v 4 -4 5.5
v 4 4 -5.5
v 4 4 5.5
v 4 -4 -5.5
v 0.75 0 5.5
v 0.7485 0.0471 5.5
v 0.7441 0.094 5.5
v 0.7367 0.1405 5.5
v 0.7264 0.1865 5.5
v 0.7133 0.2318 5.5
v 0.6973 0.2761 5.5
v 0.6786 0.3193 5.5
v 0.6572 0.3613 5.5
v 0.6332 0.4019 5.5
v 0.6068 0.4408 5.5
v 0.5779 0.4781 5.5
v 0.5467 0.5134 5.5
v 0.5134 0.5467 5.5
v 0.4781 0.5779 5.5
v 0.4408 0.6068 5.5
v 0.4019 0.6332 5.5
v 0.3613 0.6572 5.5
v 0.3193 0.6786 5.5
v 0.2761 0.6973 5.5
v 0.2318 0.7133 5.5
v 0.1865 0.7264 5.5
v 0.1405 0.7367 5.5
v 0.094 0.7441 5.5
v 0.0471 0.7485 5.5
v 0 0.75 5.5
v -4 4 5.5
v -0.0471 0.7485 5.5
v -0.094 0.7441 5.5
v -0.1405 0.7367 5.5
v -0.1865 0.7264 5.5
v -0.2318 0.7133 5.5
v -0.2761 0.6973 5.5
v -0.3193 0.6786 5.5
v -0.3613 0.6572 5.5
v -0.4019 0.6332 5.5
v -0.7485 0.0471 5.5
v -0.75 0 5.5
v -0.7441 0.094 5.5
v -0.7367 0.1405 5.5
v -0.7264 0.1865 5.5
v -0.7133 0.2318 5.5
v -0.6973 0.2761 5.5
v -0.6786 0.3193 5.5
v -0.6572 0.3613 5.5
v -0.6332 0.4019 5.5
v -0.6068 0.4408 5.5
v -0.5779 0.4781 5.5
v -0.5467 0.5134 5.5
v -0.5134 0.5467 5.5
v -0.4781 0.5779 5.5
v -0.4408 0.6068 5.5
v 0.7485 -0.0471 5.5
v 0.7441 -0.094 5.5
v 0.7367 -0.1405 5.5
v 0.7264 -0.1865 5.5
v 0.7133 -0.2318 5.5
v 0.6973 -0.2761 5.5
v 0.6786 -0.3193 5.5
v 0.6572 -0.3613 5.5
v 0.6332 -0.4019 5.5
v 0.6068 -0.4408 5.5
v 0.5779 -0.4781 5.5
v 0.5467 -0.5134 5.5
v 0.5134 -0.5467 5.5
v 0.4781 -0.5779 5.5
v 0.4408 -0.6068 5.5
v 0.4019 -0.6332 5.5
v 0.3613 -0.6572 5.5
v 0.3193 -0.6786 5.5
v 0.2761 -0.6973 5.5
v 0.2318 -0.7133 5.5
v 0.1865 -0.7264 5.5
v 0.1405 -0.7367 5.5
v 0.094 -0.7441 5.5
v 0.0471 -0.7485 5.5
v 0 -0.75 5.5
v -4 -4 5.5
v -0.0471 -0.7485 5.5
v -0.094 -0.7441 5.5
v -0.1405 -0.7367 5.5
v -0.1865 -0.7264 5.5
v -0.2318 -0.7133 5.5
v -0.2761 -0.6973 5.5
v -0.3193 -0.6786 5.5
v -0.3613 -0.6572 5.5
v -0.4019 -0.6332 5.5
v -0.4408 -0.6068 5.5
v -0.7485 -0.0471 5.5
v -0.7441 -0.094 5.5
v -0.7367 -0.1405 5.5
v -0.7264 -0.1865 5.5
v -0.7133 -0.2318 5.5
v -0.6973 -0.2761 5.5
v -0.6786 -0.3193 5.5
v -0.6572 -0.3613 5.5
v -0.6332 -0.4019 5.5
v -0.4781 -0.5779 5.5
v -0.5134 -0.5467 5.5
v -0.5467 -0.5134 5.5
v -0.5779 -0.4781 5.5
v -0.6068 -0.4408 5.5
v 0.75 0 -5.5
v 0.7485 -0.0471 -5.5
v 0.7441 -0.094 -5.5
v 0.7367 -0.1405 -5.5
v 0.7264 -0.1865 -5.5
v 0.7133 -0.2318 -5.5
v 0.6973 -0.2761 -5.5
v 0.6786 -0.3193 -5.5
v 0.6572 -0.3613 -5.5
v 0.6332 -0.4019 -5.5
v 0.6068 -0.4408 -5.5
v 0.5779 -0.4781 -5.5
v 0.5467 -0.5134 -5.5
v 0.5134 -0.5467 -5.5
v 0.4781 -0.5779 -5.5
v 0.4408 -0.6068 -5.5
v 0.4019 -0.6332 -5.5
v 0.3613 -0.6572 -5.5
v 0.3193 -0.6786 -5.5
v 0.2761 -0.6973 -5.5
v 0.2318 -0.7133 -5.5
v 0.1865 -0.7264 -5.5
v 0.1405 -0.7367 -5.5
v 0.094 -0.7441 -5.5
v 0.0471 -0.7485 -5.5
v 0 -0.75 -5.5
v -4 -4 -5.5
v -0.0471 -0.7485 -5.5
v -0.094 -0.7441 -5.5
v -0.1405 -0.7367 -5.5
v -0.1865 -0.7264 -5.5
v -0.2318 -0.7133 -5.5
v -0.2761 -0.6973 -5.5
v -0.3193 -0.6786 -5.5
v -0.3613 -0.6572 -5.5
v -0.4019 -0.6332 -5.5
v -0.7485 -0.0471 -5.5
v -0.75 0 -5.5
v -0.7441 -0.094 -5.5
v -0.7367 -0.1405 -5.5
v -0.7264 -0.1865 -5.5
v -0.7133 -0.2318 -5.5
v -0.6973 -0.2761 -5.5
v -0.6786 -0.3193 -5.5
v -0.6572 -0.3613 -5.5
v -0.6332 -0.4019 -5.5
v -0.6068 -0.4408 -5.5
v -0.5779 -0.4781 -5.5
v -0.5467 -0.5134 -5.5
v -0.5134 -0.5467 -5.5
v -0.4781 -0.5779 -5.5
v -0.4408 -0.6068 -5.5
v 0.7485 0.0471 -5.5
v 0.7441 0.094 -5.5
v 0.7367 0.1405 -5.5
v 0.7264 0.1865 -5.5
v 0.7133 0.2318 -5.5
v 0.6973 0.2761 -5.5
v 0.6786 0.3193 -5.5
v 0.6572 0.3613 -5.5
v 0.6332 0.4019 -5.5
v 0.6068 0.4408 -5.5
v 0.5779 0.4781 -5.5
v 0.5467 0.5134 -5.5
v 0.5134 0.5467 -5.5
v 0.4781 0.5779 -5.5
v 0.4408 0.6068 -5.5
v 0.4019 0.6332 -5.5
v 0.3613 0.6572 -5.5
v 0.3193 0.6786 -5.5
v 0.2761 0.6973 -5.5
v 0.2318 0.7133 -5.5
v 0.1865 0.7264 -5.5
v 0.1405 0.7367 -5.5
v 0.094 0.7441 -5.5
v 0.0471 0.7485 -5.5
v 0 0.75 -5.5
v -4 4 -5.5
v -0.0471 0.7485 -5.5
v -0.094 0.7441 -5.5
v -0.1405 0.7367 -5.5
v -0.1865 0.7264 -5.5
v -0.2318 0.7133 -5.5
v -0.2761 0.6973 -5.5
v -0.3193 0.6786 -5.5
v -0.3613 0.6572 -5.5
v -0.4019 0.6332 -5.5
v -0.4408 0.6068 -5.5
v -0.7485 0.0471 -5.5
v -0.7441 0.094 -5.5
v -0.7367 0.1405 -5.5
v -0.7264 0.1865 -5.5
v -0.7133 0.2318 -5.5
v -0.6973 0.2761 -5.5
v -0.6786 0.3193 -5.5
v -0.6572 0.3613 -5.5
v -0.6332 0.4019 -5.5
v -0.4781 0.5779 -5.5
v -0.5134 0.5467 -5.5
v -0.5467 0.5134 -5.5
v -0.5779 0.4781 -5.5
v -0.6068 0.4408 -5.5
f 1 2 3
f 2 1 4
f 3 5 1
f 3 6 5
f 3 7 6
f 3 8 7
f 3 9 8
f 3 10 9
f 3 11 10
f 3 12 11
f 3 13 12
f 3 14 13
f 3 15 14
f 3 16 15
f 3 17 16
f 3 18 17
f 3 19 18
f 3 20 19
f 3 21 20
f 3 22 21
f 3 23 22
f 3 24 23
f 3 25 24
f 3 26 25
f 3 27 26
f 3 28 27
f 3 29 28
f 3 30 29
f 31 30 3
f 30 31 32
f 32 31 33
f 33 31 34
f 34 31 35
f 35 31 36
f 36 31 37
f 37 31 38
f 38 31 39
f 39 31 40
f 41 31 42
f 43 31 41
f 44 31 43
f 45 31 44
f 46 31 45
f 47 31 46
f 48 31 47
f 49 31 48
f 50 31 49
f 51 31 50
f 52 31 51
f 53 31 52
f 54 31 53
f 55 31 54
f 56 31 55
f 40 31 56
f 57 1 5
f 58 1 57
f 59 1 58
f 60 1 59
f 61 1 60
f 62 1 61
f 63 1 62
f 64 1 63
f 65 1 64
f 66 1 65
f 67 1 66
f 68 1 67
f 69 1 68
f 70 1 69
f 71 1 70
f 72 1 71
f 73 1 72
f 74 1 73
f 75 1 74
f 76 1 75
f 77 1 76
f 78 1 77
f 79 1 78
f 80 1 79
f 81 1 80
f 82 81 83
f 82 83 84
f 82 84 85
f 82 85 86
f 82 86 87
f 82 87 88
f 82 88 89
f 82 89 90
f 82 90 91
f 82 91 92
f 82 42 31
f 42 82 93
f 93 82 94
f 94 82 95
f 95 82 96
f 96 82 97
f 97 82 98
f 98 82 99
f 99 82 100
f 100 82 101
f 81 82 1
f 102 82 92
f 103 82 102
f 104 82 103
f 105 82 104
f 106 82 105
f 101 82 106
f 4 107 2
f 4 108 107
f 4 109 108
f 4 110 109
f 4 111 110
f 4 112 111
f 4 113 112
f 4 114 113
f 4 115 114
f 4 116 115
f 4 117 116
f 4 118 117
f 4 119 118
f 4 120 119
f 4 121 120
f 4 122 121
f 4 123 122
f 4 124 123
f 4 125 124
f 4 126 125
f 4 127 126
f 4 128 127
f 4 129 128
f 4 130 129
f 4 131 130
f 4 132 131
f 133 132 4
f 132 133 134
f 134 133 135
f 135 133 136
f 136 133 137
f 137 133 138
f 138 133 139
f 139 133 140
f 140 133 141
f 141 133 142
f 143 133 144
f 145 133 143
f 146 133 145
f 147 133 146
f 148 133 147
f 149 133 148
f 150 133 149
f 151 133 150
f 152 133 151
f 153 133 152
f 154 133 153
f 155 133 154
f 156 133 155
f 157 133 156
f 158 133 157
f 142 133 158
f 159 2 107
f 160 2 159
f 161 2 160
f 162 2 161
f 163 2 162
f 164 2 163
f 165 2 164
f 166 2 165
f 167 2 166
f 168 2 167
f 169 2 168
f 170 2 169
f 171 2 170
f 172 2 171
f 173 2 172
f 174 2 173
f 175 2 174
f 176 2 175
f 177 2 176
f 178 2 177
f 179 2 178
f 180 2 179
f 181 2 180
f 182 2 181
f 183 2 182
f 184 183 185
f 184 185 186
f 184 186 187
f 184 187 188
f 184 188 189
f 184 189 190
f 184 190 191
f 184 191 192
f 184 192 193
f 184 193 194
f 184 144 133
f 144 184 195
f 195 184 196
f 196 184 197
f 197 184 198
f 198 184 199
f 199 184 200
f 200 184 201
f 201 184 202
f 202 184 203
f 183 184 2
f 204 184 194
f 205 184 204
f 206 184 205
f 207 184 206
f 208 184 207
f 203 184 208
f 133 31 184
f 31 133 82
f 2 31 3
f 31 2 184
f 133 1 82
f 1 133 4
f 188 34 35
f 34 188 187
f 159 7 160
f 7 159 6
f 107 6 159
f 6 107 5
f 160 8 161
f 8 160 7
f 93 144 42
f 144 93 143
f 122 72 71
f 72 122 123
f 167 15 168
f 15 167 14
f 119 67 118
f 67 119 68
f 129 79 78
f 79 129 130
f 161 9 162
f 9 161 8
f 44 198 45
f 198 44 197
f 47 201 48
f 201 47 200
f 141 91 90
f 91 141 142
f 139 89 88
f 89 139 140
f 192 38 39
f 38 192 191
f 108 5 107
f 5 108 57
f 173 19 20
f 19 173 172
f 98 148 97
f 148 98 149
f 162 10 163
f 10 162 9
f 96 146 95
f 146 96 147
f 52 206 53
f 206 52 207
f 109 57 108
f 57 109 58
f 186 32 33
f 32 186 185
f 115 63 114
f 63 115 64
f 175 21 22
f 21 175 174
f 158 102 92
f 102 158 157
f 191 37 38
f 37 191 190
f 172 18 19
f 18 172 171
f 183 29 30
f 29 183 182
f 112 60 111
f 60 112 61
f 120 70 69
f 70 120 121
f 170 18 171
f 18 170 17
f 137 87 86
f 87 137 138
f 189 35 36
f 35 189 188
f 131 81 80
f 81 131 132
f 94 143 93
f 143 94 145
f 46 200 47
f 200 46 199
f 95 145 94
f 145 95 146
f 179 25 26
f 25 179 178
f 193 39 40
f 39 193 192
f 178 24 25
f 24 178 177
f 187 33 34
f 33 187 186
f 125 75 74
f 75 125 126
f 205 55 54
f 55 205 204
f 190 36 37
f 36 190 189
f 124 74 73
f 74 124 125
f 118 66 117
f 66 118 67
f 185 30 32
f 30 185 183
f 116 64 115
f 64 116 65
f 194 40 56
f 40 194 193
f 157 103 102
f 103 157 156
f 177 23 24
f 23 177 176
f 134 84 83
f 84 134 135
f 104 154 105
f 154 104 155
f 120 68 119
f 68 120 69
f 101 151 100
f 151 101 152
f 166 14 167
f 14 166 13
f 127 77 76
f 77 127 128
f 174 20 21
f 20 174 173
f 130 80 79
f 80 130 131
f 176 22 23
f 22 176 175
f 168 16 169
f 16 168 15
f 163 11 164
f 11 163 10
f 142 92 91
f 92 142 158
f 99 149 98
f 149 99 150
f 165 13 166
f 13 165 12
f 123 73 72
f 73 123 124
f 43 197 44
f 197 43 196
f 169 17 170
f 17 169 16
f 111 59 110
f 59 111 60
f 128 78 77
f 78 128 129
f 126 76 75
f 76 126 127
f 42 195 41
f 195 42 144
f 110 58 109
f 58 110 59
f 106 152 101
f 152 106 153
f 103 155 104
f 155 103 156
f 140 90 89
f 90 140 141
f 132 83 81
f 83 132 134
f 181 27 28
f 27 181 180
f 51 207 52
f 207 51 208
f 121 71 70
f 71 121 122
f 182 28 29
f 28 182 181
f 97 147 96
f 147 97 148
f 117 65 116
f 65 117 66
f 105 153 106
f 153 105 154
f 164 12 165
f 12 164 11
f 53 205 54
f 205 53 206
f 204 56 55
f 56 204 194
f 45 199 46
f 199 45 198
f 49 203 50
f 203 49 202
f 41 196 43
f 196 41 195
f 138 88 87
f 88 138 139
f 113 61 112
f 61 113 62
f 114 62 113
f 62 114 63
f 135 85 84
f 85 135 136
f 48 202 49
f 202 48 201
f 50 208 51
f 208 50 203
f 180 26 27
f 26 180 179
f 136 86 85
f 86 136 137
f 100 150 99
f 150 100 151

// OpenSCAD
// Stand offs for the desktop version of the experimental
// schools computer

$fn = 100;

module pre()
{
    cube([8, 8, 11], center=true);
}

module rem()
{
    cylinder(d=1.5, h=11+0.1, center=true);
}


module standoff()
{
difference()
    {
        pre();
        rem();
    }
}


standoff();
